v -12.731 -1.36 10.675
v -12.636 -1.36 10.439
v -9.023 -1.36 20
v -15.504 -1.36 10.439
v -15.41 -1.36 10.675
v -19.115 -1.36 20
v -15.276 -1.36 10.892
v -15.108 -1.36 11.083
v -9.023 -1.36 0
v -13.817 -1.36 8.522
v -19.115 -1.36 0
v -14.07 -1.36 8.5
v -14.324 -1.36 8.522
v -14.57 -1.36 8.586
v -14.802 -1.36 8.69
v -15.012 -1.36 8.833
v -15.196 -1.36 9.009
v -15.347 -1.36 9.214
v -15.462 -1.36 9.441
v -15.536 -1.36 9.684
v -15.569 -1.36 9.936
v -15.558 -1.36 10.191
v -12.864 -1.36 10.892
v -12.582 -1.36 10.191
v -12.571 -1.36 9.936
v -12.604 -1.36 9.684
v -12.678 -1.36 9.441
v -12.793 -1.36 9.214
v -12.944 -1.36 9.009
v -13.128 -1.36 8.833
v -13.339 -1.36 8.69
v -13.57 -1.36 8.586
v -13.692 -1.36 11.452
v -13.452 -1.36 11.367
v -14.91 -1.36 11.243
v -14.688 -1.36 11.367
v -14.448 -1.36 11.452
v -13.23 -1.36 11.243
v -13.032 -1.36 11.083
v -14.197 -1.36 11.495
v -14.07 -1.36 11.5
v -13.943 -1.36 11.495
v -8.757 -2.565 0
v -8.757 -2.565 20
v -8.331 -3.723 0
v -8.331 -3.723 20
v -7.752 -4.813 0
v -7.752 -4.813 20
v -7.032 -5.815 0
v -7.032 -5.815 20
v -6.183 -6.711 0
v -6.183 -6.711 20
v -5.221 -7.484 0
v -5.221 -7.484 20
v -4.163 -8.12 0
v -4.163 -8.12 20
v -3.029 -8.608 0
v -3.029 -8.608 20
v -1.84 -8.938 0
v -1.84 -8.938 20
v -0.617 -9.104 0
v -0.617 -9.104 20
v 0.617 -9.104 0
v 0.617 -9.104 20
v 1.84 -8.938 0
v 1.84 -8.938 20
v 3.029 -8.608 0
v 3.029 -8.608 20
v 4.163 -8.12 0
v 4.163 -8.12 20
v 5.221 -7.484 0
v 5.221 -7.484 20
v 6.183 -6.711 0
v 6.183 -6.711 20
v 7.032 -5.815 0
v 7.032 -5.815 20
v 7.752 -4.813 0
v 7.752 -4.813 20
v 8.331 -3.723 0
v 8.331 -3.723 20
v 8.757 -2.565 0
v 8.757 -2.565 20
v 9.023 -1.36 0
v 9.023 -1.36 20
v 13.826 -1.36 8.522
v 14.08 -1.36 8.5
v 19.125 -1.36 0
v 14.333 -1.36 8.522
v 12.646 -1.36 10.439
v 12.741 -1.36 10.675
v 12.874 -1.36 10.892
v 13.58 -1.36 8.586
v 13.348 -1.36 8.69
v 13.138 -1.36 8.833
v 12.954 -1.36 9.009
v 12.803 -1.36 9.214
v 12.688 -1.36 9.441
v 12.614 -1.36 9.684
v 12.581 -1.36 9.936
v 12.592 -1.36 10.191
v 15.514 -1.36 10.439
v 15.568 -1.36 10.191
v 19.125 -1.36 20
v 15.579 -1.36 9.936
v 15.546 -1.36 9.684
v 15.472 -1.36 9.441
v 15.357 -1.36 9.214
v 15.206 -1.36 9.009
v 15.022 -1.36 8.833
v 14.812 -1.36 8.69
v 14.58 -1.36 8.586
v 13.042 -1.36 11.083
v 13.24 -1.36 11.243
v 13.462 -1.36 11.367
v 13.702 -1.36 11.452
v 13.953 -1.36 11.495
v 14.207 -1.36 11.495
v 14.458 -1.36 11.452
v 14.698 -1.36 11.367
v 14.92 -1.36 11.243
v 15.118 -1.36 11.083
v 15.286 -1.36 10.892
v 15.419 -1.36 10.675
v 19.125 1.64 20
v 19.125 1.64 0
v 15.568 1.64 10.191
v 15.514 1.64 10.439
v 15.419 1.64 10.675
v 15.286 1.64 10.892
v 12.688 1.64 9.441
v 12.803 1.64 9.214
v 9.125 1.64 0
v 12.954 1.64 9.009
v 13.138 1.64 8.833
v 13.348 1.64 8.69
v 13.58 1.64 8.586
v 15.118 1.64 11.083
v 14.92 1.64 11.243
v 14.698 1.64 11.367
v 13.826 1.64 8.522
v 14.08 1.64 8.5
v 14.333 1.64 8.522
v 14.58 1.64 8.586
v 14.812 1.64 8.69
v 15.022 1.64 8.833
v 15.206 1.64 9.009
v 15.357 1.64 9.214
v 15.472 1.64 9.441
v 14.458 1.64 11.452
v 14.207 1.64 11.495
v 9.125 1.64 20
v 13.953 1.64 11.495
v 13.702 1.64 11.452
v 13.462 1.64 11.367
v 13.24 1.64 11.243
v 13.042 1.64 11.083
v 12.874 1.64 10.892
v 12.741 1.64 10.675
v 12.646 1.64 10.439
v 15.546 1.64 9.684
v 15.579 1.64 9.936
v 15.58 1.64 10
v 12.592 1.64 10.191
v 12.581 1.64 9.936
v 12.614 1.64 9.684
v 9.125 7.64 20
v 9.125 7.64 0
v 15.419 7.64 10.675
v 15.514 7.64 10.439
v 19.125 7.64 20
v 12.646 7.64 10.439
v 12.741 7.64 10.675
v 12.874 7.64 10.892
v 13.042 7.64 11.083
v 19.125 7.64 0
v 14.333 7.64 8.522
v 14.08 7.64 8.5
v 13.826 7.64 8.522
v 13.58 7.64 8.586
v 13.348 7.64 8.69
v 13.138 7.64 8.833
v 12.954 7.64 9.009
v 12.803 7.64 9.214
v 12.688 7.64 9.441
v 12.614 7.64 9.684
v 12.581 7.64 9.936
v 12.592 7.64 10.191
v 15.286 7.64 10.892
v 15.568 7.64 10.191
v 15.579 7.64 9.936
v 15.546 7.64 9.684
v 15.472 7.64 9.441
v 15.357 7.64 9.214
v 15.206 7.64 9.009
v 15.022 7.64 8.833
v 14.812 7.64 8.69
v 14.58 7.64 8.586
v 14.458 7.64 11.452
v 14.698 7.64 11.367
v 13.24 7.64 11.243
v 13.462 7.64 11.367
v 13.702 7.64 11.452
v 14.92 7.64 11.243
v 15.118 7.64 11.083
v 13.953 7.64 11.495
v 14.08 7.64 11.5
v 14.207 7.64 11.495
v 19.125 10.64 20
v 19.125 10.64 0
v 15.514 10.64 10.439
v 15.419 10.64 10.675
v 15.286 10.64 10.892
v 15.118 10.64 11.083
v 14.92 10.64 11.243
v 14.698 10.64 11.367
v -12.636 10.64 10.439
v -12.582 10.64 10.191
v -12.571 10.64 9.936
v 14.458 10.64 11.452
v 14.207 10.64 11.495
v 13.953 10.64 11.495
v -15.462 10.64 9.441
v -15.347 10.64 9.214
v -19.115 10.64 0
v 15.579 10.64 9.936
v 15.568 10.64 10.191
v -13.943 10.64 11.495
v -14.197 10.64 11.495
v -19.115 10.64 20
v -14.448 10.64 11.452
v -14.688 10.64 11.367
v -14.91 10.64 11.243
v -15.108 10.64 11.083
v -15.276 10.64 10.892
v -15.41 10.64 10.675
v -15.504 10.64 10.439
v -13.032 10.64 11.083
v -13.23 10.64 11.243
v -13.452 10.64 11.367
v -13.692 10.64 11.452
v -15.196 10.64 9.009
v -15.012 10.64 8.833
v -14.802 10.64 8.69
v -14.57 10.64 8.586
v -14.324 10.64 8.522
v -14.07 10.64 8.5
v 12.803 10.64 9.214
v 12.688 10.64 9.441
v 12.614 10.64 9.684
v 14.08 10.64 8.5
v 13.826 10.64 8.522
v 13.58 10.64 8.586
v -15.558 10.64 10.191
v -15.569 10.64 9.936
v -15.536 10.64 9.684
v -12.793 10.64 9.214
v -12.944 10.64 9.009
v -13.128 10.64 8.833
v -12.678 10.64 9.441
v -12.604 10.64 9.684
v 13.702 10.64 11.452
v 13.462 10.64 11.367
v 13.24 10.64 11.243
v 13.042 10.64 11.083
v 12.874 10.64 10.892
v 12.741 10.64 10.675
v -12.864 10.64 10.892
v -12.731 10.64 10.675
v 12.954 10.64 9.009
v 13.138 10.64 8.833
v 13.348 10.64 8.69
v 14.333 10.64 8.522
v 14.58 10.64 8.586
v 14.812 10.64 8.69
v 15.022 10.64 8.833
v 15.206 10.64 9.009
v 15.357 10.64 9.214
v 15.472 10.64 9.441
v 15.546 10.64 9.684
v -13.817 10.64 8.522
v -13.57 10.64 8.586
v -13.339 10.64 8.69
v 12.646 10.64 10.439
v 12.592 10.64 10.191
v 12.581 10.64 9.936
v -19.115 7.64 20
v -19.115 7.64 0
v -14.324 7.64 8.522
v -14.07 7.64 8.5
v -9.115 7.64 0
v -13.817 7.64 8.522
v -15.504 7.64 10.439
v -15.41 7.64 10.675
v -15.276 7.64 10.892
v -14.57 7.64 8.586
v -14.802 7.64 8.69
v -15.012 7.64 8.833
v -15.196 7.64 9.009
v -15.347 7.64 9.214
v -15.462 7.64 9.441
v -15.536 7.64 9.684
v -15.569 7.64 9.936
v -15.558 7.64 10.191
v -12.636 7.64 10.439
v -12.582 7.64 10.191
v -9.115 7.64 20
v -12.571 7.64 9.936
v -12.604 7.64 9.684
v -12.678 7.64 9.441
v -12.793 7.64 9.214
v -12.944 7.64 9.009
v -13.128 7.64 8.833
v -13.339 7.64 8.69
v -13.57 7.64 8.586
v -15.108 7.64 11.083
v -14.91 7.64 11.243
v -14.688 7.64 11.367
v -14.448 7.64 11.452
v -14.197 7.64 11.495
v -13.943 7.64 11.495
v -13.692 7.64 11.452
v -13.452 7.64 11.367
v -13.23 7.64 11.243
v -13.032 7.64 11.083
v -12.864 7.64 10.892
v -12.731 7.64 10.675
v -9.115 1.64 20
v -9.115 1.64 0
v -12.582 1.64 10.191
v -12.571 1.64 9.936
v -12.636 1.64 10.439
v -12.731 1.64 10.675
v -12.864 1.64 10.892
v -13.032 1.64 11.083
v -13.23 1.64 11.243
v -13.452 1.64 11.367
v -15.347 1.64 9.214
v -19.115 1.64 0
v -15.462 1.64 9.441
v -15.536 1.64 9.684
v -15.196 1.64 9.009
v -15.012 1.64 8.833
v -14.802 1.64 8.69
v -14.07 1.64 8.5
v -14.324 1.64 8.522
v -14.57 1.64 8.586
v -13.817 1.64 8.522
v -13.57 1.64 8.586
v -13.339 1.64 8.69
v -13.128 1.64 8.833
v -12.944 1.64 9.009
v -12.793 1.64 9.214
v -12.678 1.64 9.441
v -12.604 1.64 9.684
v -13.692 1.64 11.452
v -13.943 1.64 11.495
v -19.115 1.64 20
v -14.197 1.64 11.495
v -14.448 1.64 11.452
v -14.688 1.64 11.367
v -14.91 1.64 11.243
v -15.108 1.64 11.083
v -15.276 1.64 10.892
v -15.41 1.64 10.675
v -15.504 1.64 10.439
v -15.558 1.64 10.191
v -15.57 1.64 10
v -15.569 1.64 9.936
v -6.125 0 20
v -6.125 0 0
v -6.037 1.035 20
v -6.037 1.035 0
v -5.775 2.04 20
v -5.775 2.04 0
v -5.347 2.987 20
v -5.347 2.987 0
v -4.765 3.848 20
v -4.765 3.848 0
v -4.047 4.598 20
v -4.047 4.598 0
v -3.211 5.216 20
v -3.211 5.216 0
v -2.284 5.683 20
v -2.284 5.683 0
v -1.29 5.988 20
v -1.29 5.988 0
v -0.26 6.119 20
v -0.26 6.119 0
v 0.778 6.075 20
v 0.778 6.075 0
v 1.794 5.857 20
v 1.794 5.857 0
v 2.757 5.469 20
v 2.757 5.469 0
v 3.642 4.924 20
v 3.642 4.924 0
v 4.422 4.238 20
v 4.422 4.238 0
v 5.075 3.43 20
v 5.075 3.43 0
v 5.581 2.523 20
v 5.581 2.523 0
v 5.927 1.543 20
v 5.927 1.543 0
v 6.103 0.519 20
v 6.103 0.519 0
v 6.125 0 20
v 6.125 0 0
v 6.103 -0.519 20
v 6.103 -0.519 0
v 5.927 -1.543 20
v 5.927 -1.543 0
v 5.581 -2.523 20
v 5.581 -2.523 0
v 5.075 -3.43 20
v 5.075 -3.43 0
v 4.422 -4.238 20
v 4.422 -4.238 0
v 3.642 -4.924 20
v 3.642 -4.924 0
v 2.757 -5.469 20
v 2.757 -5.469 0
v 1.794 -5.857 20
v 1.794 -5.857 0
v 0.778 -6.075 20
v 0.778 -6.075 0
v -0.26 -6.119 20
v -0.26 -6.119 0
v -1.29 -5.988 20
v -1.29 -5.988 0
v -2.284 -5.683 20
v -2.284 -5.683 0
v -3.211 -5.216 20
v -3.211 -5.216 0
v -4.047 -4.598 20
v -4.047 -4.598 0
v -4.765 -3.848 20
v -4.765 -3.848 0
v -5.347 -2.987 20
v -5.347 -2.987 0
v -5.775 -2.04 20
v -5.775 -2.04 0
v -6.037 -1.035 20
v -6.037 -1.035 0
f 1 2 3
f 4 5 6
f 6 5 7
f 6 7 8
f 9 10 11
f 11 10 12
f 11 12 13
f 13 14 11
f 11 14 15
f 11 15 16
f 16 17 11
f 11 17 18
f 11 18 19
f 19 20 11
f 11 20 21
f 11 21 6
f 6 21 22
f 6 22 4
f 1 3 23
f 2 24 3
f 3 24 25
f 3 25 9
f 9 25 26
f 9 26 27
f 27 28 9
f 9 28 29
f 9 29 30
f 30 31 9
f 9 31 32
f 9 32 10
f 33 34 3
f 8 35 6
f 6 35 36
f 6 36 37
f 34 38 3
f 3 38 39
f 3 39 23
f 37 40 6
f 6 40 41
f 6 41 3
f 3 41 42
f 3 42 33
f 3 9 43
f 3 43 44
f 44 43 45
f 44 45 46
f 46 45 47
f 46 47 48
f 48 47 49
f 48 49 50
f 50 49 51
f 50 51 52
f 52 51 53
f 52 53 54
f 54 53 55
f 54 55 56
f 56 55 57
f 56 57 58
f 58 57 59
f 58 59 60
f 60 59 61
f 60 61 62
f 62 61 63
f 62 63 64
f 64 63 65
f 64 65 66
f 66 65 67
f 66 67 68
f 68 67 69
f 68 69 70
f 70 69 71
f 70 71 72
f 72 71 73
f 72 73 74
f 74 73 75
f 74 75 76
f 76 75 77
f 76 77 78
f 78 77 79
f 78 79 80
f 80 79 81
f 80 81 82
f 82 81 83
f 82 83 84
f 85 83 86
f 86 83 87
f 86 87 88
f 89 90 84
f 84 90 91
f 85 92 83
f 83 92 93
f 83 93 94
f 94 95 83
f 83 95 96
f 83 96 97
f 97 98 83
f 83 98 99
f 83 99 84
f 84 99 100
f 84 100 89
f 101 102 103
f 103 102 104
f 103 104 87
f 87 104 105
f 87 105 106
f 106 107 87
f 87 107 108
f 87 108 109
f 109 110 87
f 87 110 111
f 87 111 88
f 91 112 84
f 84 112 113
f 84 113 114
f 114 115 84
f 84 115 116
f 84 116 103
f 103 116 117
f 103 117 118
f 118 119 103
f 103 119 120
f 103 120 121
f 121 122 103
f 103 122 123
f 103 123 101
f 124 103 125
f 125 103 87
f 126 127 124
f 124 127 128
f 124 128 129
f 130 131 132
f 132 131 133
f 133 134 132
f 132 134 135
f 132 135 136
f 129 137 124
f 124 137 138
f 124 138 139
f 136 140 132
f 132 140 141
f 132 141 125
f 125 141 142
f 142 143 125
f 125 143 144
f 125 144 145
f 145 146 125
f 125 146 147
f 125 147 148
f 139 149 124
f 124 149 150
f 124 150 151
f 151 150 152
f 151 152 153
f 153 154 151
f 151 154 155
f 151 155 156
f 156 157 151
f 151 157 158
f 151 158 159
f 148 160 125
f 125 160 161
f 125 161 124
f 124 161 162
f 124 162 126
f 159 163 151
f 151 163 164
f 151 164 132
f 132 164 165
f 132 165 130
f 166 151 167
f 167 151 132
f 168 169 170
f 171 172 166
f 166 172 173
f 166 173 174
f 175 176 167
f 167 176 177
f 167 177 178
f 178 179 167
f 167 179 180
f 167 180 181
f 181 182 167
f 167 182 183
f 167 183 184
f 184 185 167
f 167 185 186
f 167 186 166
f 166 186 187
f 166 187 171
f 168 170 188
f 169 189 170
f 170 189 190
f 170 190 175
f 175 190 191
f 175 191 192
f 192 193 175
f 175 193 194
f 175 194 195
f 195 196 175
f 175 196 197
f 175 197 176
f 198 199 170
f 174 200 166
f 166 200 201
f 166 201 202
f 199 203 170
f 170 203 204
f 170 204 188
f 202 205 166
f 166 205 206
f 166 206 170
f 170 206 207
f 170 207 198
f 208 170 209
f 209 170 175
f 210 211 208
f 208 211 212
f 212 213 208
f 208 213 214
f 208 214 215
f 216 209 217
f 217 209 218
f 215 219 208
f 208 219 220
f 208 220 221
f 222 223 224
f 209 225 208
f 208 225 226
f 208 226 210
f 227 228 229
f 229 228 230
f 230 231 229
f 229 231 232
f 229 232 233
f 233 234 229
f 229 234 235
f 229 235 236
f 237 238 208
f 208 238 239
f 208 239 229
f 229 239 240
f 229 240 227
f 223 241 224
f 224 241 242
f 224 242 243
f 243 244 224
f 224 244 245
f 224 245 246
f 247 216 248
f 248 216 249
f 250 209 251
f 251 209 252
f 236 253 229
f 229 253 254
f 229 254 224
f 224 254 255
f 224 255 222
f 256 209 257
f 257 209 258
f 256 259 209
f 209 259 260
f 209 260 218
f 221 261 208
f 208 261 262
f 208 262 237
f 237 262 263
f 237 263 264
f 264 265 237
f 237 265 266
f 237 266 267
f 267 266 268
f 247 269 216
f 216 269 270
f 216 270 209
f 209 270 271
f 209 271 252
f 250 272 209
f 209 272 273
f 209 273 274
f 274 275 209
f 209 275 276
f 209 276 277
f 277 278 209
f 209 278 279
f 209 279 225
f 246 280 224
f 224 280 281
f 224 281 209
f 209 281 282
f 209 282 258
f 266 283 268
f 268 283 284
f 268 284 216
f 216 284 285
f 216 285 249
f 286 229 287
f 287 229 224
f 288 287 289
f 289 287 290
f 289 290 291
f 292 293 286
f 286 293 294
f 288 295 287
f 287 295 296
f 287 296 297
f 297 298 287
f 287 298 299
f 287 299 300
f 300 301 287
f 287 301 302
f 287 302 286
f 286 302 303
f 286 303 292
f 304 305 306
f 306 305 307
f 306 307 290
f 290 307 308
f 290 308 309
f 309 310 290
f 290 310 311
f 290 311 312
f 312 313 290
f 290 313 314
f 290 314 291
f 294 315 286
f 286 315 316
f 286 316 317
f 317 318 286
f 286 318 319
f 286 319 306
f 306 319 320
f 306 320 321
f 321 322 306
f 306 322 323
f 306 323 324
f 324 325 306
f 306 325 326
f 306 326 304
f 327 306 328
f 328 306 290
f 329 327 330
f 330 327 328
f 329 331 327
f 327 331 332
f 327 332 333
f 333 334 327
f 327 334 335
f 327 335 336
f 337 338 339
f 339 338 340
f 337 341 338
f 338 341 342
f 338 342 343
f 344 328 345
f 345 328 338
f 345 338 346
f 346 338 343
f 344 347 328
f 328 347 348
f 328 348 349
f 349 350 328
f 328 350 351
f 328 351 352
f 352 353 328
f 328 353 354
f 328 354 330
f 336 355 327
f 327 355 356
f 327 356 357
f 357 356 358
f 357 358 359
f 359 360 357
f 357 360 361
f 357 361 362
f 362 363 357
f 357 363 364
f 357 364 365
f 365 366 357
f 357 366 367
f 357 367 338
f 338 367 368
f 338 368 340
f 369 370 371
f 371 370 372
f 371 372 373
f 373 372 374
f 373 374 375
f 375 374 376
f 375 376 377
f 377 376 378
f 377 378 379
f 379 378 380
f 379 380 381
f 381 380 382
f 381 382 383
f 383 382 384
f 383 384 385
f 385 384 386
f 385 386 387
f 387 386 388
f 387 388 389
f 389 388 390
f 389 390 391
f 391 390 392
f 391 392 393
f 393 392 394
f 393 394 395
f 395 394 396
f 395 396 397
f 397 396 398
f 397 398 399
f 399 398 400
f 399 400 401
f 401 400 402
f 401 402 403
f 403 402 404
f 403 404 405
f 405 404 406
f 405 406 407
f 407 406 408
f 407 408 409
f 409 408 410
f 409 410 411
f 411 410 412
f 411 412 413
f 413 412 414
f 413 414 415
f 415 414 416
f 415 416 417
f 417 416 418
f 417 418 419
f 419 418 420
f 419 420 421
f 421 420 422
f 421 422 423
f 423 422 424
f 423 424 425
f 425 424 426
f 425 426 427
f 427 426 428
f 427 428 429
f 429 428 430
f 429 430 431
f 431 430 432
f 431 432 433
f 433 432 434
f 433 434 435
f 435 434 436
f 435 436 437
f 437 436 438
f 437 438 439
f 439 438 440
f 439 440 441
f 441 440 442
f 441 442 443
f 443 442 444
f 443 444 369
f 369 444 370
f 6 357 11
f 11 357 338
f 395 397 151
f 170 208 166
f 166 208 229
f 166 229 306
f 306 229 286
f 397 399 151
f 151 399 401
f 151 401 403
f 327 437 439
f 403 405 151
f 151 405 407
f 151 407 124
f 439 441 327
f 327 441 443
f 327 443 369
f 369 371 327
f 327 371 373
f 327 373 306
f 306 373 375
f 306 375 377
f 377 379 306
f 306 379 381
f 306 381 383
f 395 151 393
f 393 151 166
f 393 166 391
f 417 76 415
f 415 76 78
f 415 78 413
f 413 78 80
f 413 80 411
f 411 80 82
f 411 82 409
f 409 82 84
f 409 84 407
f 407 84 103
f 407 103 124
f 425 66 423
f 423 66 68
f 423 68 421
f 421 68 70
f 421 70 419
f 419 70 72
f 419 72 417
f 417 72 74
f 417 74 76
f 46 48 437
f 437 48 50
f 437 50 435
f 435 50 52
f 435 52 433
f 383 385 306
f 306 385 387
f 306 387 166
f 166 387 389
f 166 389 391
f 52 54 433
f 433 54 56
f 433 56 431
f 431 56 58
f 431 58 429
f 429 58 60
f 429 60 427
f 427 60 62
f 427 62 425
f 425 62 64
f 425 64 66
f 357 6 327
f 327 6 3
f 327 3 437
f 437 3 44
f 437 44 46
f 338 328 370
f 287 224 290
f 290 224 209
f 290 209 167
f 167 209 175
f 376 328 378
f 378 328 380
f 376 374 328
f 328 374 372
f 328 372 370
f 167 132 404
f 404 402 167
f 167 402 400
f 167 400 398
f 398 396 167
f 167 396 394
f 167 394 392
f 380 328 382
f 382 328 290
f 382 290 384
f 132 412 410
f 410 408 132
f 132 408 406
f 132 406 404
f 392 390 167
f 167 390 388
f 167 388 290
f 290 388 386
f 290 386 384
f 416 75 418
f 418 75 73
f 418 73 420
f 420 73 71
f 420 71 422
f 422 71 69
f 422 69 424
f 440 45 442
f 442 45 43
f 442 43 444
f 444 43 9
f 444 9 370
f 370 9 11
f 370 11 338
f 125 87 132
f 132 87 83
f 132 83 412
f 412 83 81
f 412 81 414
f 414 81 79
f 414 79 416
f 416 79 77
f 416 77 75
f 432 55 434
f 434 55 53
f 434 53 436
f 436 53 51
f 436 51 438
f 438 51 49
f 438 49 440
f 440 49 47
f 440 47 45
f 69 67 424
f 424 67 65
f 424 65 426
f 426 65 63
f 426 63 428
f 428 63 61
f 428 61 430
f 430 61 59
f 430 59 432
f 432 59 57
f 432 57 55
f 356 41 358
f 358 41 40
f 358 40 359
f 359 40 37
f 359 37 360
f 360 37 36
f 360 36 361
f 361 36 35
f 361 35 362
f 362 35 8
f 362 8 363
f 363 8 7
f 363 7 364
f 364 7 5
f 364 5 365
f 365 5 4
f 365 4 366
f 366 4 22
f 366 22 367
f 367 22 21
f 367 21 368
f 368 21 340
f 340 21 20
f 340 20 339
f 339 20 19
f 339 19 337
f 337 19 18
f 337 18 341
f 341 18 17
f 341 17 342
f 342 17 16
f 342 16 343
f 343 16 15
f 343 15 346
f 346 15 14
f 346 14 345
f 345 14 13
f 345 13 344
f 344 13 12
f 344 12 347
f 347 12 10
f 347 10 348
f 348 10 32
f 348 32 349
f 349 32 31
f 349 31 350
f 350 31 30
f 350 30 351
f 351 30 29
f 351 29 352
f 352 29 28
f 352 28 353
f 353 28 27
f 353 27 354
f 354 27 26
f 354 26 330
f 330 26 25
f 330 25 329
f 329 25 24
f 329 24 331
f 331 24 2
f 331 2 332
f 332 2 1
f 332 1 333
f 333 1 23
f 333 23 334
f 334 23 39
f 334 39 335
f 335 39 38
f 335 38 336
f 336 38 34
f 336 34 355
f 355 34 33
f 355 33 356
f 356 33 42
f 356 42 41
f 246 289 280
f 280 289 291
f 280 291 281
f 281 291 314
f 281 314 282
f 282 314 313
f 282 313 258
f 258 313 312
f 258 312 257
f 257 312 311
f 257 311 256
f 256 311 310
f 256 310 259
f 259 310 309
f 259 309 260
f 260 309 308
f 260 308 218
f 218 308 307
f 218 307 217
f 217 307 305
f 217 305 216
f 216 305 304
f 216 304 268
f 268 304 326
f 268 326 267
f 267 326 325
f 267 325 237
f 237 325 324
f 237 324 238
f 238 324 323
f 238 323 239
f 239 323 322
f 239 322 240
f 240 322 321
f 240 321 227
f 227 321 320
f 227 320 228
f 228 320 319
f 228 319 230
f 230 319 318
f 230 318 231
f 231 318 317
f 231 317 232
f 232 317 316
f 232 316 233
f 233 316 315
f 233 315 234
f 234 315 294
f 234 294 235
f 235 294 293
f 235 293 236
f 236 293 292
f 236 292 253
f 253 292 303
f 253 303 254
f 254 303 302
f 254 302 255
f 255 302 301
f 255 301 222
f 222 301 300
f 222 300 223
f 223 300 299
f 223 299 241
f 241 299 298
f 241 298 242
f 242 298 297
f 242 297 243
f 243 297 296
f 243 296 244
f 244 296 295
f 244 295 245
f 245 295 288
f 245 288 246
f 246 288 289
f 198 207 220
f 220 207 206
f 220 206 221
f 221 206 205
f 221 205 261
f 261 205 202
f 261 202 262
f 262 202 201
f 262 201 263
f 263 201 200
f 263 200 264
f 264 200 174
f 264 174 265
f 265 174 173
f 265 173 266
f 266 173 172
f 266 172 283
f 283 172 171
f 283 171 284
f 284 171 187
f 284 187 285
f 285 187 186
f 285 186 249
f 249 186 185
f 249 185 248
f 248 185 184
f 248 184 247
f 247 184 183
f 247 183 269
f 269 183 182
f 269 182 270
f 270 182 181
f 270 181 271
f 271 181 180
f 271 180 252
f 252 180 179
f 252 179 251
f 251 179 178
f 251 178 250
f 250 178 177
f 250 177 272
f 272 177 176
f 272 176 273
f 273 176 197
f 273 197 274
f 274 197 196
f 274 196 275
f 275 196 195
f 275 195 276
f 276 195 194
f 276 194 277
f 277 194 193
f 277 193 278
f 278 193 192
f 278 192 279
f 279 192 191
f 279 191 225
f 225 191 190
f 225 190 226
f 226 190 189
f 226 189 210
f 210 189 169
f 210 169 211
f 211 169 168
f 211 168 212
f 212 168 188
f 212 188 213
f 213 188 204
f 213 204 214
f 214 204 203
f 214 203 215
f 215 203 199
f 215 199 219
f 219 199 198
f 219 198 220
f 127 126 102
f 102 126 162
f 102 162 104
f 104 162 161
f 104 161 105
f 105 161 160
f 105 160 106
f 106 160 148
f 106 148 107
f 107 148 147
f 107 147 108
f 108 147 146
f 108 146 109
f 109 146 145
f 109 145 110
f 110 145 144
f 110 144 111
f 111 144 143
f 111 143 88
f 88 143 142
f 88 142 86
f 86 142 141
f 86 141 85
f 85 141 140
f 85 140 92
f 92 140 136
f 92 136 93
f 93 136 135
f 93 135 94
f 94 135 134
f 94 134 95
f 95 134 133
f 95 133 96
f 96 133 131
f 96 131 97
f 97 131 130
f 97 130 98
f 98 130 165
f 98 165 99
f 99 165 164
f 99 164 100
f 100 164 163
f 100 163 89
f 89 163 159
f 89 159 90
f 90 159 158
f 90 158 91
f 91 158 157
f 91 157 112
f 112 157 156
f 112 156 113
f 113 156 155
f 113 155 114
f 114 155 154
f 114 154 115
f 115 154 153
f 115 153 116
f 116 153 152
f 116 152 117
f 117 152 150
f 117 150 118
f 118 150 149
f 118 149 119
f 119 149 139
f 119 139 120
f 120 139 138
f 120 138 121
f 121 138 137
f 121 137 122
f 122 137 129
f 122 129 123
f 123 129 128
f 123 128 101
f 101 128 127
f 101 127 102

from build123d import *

# Parameters (mm, degrees)
ESQUISSE1_R                  = 6.125
BOSS_EXTRU_1_DEPTH           = 20
ENL_V_MAT_EXTRU_1_DEPTH      = 31.16232128
ENL_V_MAT_EXTRU_1_DEPTH_BACK = 31.16232128
ESQUISSE2_R                  = 1.5


with BuildPart() as part:
    # Esquisse1 → Boss.-Extru.1 (new body)
    with BuildSketch(Plane.XY):
        with BuildLine():
            ThreePointArc((-9.023082899, -1.36), (0, -9.125), (9.023082899, -1.36))
            Line((9.023082899, -1.36), (19.125, -1.36))
            Line((19.125, -1.36), (19.125, 1.64))
            Line((19.125, 1.64), (9.125, 1.64))
            Line((9.125, 1.64), (9.125, 7.64))
            Line((9.125, 7.64), (19.125, 7.64))
            Line((19.125, 7.64), (19.125, 10.64))
            Line((19.125, 10.64), (-19.11513432, 10.64))
            Line((-19.11513432, 10.64), (-19.11513432, 7.64))
            Line((-19.11513432, 7.64), (-9.11513432, 7.64))
            Line((-9.11513432, 7.64), (-9.11513432, 1.64))
            Line((-9.11513432, 1.64), (-19.11513432, 1.64))
            Line((-19.11513432, 1.64), (-19.11513432, -1.36))
            Line((-19.11513432, -1.36), (-9.023082899, -1.36))
        make_face()
        Circle(ESQUISSE1_R, mode=Mode.SUBTRACT)
    extrude(amount=BOSS_EXTRU_1_DEPTH)

    # Esquisse2 → Enlèv. mat.-Extru.1 (cut, two sides: drawn at the far end of the back side and taken through both)
    with BuildSketch(Plane.XZ.offset(1.36).offset(-ENL_V_MAT_EXTRU_1_DEPTH_BACK)):
        with Locations(Location((-14.07013432, 10, 0), (0, 0, 180))):
            Circle(ESQUISSE2_R)
        with Locations(Location((14.08, 10, 0), (0, 0, 270))):
            Circle(ESQUISSE2_R)
    extrude(amount=ENL_V_MAT_EXTRU_1_DEPTH + ENL_V_MAT_EXTRU_1_DEPTH_BACK, mode=Mode.SUBTRACT)


solid = part.part
